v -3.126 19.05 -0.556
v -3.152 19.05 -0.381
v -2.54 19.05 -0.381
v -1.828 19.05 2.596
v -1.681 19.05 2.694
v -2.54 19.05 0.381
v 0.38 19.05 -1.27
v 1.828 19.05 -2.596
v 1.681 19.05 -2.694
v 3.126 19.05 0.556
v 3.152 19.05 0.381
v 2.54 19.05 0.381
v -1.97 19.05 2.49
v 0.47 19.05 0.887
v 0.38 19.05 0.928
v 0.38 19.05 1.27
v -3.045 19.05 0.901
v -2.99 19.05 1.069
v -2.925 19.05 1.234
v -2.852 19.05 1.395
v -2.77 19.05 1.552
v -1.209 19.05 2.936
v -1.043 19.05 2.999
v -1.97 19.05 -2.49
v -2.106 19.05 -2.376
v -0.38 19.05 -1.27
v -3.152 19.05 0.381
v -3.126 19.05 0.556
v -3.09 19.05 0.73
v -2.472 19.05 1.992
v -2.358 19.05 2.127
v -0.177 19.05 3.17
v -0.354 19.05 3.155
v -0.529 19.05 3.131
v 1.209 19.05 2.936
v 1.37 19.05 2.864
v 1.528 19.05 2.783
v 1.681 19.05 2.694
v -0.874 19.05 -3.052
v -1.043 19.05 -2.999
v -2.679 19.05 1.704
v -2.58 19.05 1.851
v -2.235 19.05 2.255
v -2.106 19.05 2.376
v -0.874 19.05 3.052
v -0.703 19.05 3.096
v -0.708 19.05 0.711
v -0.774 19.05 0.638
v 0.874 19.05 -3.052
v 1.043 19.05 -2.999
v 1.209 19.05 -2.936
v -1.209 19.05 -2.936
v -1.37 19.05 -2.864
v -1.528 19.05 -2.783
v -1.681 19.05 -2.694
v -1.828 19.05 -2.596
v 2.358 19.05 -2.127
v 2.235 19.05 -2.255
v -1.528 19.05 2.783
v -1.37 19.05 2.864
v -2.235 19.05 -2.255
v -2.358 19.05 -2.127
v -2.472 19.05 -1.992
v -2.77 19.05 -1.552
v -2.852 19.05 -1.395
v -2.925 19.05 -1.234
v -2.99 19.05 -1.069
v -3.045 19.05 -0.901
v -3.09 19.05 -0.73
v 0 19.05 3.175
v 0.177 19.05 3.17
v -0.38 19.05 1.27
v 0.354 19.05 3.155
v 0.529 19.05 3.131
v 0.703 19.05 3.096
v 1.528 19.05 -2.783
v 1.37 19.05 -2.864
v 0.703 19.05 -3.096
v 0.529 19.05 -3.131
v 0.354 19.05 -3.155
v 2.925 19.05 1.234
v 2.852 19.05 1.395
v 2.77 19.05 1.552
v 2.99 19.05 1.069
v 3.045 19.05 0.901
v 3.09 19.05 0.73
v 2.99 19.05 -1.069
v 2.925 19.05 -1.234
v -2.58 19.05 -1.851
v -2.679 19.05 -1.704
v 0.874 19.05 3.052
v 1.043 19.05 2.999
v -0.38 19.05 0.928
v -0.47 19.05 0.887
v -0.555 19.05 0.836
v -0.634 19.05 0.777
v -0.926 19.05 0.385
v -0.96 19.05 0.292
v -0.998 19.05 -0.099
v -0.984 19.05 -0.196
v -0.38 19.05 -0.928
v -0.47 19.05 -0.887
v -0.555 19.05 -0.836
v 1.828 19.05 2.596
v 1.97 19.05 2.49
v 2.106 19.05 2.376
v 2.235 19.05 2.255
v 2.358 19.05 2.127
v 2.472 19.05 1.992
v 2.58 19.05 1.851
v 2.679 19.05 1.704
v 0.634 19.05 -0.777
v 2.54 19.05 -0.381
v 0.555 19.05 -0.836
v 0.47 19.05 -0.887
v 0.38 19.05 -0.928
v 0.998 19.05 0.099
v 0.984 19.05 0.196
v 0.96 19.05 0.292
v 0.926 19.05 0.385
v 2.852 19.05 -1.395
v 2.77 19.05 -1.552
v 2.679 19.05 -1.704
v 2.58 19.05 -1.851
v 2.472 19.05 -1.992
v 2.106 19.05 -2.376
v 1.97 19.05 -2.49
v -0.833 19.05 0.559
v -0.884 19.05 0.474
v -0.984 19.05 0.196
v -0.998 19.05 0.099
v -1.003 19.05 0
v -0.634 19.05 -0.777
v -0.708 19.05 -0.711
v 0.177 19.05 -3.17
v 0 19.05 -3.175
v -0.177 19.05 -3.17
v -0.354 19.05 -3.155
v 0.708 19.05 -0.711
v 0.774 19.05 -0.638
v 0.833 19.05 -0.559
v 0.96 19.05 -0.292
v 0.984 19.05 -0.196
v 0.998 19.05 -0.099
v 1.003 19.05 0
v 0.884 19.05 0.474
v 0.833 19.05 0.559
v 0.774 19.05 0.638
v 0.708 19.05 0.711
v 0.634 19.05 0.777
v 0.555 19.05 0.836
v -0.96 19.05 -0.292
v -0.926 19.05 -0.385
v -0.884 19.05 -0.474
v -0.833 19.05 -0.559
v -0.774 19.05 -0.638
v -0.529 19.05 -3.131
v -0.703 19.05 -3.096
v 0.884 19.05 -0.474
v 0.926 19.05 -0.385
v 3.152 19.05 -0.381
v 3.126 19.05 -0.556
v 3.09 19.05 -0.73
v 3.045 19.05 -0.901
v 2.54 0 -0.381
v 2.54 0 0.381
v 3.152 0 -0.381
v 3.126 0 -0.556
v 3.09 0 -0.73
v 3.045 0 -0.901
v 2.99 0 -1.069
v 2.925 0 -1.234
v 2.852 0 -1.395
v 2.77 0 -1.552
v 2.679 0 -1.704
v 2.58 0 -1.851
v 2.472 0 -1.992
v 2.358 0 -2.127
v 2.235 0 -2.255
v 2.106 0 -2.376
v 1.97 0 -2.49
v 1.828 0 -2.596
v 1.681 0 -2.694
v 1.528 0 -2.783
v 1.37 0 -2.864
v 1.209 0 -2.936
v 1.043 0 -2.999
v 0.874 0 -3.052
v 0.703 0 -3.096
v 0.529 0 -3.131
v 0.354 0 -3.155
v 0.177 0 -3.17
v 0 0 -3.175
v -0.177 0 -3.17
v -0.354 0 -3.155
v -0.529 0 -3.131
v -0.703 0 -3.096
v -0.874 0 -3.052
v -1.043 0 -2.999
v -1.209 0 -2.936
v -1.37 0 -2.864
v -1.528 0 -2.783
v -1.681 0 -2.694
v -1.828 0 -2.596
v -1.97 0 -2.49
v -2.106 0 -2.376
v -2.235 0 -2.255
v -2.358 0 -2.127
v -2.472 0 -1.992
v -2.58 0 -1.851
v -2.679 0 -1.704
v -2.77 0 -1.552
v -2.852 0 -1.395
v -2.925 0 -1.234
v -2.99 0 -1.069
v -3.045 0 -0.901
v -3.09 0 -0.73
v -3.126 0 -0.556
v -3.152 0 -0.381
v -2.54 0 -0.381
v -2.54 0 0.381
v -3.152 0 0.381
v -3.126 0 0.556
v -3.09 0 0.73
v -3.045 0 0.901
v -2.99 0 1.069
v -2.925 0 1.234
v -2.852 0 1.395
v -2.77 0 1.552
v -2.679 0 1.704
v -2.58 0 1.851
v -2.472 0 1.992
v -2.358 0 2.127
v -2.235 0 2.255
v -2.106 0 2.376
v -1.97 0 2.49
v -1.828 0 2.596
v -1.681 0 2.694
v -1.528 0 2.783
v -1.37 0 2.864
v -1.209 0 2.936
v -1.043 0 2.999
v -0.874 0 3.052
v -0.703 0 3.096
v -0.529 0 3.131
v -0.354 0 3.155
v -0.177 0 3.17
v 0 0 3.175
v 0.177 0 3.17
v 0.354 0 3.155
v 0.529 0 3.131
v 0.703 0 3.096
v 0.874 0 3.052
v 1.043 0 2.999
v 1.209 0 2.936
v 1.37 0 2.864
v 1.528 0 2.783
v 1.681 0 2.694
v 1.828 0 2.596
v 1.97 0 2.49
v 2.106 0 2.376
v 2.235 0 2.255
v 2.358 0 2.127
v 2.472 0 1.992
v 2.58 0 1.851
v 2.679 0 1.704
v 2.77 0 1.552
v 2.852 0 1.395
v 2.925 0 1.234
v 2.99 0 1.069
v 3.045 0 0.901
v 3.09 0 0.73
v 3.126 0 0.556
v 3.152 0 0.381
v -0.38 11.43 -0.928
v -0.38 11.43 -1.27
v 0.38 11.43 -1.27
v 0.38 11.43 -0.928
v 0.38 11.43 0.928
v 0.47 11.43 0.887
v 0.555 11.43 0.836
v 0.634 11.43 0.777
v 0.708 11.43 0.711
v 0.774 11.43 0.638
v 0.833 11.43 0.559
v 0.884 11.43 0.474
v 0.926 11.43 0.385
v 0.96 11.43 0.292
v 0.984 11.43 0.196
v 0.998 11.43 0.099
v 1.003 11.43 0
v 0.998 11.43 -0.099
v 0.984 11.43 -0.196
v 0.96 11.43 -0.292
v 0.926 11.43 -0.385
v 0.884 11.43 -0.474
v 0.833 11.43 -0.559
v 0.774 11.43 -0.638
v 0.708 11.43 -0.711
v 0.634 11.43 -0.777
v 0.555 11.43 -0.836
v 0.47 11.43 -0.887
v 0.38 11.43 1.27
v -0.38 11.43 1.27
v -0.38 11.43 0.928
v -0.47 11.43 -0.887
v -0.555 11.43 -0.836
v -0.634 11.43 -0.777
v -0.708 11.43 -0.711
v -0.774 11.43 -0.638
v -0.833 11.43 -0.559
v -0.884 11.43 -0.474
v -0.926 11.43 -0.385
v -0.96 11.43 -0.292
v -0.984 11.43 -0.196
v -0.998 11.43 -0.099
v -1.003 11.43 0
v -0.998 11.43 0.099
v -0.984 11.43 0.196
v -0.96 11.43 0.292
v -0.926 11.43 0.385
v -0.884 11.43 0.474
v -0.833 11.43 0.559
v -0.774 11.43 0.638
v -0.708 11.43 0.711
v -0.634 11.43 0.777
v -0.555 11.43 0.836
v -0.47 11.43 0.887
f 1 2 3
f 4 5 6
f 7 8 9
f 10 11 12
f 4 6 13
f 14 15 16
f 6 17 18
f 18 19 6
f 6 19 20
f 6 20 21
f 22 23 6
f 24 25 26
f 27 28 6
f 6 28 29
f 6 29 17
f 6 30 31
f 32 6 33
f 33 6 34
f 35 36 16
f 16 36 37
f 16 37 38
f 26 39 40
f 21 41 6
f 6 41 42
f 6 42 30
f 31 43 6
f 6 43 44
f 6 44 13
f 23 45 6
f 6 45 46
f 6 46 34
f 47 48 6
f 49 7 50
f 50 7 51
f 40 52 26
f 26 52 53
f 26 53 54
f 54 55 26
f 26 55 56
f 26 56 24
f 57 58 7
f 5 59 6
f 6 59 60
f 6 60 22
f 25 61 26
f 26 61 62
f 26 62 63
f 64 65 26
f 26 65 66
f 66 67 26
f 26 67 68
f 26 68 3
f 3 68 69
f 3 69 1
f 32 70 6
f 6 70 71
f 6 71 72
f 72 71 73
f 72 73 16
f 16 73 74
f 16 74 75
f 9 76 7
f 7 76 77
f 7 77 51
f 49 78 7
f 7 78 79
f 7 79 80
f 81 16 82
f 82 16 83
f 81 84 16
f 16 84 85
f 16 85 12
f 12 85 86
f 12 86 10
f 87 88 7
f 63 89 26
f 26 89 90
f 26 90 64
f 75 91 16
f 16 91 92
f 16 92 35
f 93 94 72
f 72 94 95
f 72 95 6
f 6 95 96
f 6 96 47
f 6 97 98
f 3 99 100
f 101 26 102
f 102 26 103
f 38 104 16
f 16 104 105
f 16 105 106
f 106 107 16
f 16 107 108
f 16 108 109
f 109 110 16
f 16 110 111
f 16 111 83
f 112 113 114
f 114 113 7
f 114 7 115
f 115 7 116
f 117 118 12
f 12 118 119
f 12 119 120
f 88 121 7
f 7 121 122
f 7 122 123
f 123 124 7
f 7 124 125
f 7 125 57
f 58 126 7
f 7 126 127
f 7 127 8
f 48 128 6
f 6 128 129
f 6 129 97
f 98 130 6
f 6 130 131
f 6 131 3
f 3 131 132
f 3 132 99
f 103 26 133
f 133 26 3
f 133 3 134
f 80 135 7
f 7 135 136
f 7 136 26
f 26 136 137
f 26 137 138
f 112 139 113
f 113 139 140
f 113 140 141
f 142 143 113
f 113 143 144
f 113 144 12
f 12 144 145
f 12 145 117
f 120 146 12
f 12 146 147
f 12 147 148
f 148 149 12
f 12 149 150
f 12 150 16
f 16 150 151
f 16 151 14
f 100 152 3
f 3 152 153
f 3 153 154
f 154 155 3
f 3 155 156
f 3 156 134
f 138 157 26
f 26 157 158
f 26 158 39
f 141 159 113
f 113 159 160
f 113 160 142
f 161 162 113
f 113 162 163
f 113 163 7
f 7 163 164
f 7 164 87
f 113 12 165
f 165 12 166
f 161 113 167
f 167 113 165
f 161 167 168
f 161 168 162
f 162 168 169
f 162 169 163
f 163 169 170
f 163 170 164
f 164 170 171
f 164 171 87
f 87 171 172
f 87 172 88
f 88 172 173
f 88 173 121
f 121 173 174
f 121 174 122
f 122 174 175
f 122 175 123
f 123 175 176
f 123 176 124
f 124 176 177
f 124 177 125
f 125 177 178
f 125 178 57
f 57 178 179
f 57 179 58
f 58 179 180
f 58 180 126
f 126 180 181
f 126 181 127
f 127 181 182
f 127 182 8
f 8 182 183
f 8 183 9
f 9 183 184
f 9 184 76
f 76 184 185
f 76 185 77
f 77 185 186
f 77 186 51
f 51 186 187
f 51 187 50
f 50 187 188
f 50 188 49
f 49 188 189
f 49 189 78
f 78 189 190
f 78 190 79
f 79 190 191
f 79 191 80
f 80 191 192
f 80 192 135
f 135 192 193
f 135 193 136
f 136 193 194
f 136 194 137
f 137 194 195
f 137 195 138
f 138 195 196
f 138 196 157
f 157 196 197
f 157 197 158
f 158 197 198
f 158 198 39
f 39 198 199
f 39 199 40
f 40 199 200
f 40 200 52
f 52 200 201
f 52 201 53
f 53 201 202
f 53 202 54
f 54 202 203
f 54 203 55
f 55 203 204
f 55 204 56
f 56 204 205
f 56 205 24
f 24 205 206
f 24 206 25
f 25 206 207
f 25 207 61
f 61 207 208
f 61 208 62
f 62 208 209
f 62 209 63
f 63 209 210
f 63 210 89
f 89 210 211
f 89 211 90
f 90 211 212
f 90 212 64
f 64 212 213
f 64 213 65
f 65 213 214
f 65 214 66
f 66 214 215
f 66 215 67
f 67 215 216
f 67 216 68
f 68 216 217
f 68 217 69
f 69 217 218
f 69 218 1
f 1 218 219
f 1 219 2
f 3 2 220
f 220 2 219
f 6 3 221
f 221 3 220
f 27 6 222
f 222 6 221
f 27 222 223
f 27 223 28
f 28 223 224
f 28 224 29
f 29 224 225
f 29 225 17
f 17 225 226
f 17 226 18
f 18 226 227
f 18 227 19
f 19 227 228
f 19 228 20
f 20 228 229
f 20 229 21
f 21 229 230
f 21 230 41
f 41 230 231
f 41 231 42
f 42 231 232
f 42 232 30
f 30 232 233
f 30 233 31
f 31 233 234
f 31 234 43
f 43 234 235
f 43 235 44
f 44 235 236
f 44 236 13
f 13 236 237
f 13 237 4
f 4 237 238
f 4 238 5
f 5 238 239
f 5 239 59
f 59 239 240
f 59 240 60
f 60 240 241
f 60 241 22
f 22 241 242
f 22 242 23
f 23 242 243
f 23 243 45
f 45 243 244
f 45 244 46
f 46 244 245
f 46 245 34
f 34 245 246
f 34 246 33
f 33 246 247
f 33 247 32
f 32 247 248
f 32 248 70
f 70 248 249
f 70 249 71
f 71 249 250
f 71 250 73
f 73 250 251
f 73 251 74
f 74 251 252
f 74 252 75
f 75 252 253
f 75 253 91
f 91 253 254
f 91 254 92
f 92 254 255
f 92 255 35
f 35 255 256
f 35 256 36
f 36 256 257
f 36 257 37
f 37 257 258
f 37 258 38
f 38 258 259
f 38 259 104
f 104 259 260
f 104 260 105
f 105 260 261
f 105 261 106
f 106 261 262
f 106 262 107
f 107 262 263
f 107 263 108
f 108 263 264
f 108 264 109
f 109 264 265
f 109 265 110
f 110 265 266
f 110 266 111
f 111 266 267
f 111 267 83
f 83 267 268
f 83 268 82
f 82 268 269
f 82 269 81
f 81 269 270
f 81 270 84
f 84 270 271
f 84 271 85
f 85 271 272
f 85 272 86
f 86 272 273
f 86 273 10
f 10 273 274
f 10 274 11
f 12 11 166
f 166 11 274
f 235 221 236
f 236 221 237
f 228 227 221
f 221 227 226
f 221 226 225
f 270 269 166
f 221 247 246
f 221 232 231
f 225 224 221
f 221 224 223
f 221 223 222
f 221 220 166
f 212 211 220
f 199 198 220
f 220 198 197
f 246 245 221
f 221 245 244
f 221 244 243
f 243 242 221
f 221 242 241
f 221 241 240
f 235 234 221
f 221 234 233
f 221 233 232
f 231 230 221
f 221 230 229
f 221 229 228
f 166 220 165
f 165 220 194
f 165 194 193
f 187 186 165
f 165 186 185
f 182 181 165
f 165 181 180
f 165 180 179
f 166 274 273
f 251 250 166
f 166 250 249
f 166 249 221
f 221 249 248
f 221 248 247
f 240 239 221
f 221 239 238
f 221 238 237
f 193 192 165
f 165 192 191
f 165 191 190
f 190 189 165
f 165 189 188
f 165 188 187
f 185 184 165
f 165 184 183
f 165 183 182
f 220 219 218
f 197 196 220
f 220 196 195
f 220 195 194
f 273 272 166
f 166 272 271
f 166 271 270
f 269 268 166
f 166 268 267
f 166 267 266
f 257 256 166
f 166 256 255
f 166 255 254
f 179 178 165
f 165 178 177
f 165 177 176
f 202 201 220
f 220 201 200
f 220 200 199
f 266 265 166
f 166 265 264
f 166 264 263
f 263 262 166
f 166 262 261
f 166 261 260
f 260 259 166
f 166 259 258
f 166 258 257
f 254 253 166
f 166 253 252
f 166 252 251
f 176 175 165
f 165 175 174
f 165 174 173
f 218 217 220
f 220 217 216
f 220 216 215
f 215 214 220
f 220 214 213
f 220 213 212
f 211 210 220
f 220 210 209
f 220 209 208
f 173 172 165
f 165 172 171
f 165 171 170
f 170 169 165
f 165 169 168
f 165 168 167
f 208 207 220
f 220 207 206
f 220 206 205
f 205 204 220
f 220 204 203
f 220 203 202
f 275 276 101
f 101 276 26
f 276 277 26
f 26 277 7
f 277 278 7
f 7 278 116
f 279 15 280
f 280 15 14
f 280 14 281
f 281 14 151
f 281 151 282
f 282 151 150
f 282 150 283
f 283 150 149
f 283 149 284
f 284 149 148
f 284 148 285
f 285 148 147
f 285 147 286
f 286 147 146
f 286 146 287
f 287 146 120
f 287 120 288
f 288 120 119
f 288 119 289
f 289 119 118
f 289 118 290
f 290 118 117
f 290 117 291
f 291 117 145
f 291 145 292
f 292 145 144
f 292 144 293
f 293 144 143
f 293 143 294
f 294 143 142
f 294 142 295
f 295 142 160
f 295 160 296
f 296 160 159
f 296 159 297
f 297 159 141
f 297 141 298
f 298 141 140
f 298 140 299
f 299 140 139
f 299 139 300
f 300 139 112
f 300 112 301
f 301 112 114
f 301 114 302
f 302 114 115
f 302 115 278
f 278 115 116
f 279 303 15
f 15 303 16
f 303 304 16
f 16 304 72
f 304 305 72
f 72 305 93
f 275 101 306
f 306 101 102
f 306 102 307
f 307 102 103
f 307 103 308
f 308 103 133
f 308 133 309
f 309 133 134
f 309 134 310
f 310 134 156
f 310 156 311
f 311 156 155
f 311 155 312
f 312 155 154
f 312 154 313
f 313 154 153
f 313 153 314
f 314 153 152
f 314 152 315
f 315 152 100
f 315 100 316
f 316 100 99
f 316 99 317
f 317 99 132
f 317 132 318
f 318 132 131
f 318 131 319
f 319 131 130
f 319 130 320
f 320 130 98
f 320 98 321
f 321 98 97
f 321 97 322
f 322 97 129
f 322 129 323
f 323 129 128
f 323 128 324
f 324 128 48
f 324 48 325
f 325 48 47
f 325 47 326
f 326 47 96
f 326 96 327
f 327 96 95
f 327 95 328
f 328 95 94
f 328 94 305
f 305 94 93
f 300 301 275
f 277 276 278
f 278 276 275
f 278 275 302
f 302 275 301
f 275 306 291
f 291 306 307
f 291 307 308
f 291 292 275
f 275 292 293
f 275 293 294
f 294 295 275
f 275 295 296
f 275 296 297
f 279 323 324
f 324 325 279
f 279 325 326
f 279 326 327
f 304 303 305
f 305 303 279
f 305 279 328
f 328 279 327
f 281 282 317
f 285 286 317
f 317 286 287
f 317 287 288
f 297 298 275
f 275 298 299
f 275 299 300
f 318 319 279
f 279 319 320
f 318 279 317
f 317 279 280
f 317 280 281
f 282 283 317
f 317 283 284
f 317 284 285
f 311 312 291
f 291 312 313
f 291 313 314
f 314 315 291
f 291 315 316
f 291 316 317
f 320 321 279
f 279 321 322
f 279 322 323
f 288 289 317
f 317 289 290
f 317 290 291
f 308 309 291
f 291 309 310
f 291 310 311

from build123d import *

# Parameters (mm, degrees)
BOSS_EXTRUDE1_DEPTH = 19.05
CUT_EXTRUDE1_DEPTH  = 7.62


with BuildPart() as part:
    # Sketch1 → Boss-Extrude1 (new body)
    with BuildSketch(Plane(origin=(0, 0, 0), x_dir=(1, 0, 0), z_dir=(0, 1, 0))):
        with BuildLine():
            Line((2.54, -0.381), (3.152057106, -0.381))
            ThreePointArc((3.152057106, -0.381), (0, -3.175), (-3.152057106, -0.381))
            Line((-3.152057106, -0.381), (-2.54, -0.381))
            Line((-2.54, -0.381), (-2.54, 0.381))
            Line((-2.54, 0.381), (-3.152057106, 0.381))
            ThreePointArc((-3.152057106, 0.381), (0, 3.175), (3.152057106, 0.381))
            Line((3.152057106, 0.381), (2.54, 0.381))
            Line((2.54, 0.381), (2.54, -0.381))
        make_face()
    extrude(amount=BOSS_EXTRUDE1_DEPTH)

    # Sketch2 → Cut-Extrude1 (cut)
    with BuildSketch(Plane(origin=(0, 19.05, 0), x_dir=(1, 0, 0), z_dir=(0, 1, 0))):
        with BuildLine():
            Line((-0.380189943, 0.928475362), (-0.380189943, 1.27))
            Line((-0.380189943, 1.27), (0.380189943, 1.27))
            Line((0.380189943, 1.27), (0.380189943, 0.928475362))
            ThreePointArc((0.380189943, 0.928475362), (1.0033, 0), (0.380189943, -0.928475362))
            Line((0.380189943, -0.928475362), (0.380189943, -1.27))
            Line((0.380189943, -1.27), (-0.380189943, -1.27))
            Line((-0.380189943, -1.27), (-0.380189943, -0.928475362))
            ThreePointArc((-0.380189943, -0.928475362), (-1.0033, 0), (-0.380189943, 0.928475362))
        make_face()
    extrude(amount=-CUT_EXTRUDE1_DEPTH, mode=Mode.SUBTRACT)


solid = part.part
